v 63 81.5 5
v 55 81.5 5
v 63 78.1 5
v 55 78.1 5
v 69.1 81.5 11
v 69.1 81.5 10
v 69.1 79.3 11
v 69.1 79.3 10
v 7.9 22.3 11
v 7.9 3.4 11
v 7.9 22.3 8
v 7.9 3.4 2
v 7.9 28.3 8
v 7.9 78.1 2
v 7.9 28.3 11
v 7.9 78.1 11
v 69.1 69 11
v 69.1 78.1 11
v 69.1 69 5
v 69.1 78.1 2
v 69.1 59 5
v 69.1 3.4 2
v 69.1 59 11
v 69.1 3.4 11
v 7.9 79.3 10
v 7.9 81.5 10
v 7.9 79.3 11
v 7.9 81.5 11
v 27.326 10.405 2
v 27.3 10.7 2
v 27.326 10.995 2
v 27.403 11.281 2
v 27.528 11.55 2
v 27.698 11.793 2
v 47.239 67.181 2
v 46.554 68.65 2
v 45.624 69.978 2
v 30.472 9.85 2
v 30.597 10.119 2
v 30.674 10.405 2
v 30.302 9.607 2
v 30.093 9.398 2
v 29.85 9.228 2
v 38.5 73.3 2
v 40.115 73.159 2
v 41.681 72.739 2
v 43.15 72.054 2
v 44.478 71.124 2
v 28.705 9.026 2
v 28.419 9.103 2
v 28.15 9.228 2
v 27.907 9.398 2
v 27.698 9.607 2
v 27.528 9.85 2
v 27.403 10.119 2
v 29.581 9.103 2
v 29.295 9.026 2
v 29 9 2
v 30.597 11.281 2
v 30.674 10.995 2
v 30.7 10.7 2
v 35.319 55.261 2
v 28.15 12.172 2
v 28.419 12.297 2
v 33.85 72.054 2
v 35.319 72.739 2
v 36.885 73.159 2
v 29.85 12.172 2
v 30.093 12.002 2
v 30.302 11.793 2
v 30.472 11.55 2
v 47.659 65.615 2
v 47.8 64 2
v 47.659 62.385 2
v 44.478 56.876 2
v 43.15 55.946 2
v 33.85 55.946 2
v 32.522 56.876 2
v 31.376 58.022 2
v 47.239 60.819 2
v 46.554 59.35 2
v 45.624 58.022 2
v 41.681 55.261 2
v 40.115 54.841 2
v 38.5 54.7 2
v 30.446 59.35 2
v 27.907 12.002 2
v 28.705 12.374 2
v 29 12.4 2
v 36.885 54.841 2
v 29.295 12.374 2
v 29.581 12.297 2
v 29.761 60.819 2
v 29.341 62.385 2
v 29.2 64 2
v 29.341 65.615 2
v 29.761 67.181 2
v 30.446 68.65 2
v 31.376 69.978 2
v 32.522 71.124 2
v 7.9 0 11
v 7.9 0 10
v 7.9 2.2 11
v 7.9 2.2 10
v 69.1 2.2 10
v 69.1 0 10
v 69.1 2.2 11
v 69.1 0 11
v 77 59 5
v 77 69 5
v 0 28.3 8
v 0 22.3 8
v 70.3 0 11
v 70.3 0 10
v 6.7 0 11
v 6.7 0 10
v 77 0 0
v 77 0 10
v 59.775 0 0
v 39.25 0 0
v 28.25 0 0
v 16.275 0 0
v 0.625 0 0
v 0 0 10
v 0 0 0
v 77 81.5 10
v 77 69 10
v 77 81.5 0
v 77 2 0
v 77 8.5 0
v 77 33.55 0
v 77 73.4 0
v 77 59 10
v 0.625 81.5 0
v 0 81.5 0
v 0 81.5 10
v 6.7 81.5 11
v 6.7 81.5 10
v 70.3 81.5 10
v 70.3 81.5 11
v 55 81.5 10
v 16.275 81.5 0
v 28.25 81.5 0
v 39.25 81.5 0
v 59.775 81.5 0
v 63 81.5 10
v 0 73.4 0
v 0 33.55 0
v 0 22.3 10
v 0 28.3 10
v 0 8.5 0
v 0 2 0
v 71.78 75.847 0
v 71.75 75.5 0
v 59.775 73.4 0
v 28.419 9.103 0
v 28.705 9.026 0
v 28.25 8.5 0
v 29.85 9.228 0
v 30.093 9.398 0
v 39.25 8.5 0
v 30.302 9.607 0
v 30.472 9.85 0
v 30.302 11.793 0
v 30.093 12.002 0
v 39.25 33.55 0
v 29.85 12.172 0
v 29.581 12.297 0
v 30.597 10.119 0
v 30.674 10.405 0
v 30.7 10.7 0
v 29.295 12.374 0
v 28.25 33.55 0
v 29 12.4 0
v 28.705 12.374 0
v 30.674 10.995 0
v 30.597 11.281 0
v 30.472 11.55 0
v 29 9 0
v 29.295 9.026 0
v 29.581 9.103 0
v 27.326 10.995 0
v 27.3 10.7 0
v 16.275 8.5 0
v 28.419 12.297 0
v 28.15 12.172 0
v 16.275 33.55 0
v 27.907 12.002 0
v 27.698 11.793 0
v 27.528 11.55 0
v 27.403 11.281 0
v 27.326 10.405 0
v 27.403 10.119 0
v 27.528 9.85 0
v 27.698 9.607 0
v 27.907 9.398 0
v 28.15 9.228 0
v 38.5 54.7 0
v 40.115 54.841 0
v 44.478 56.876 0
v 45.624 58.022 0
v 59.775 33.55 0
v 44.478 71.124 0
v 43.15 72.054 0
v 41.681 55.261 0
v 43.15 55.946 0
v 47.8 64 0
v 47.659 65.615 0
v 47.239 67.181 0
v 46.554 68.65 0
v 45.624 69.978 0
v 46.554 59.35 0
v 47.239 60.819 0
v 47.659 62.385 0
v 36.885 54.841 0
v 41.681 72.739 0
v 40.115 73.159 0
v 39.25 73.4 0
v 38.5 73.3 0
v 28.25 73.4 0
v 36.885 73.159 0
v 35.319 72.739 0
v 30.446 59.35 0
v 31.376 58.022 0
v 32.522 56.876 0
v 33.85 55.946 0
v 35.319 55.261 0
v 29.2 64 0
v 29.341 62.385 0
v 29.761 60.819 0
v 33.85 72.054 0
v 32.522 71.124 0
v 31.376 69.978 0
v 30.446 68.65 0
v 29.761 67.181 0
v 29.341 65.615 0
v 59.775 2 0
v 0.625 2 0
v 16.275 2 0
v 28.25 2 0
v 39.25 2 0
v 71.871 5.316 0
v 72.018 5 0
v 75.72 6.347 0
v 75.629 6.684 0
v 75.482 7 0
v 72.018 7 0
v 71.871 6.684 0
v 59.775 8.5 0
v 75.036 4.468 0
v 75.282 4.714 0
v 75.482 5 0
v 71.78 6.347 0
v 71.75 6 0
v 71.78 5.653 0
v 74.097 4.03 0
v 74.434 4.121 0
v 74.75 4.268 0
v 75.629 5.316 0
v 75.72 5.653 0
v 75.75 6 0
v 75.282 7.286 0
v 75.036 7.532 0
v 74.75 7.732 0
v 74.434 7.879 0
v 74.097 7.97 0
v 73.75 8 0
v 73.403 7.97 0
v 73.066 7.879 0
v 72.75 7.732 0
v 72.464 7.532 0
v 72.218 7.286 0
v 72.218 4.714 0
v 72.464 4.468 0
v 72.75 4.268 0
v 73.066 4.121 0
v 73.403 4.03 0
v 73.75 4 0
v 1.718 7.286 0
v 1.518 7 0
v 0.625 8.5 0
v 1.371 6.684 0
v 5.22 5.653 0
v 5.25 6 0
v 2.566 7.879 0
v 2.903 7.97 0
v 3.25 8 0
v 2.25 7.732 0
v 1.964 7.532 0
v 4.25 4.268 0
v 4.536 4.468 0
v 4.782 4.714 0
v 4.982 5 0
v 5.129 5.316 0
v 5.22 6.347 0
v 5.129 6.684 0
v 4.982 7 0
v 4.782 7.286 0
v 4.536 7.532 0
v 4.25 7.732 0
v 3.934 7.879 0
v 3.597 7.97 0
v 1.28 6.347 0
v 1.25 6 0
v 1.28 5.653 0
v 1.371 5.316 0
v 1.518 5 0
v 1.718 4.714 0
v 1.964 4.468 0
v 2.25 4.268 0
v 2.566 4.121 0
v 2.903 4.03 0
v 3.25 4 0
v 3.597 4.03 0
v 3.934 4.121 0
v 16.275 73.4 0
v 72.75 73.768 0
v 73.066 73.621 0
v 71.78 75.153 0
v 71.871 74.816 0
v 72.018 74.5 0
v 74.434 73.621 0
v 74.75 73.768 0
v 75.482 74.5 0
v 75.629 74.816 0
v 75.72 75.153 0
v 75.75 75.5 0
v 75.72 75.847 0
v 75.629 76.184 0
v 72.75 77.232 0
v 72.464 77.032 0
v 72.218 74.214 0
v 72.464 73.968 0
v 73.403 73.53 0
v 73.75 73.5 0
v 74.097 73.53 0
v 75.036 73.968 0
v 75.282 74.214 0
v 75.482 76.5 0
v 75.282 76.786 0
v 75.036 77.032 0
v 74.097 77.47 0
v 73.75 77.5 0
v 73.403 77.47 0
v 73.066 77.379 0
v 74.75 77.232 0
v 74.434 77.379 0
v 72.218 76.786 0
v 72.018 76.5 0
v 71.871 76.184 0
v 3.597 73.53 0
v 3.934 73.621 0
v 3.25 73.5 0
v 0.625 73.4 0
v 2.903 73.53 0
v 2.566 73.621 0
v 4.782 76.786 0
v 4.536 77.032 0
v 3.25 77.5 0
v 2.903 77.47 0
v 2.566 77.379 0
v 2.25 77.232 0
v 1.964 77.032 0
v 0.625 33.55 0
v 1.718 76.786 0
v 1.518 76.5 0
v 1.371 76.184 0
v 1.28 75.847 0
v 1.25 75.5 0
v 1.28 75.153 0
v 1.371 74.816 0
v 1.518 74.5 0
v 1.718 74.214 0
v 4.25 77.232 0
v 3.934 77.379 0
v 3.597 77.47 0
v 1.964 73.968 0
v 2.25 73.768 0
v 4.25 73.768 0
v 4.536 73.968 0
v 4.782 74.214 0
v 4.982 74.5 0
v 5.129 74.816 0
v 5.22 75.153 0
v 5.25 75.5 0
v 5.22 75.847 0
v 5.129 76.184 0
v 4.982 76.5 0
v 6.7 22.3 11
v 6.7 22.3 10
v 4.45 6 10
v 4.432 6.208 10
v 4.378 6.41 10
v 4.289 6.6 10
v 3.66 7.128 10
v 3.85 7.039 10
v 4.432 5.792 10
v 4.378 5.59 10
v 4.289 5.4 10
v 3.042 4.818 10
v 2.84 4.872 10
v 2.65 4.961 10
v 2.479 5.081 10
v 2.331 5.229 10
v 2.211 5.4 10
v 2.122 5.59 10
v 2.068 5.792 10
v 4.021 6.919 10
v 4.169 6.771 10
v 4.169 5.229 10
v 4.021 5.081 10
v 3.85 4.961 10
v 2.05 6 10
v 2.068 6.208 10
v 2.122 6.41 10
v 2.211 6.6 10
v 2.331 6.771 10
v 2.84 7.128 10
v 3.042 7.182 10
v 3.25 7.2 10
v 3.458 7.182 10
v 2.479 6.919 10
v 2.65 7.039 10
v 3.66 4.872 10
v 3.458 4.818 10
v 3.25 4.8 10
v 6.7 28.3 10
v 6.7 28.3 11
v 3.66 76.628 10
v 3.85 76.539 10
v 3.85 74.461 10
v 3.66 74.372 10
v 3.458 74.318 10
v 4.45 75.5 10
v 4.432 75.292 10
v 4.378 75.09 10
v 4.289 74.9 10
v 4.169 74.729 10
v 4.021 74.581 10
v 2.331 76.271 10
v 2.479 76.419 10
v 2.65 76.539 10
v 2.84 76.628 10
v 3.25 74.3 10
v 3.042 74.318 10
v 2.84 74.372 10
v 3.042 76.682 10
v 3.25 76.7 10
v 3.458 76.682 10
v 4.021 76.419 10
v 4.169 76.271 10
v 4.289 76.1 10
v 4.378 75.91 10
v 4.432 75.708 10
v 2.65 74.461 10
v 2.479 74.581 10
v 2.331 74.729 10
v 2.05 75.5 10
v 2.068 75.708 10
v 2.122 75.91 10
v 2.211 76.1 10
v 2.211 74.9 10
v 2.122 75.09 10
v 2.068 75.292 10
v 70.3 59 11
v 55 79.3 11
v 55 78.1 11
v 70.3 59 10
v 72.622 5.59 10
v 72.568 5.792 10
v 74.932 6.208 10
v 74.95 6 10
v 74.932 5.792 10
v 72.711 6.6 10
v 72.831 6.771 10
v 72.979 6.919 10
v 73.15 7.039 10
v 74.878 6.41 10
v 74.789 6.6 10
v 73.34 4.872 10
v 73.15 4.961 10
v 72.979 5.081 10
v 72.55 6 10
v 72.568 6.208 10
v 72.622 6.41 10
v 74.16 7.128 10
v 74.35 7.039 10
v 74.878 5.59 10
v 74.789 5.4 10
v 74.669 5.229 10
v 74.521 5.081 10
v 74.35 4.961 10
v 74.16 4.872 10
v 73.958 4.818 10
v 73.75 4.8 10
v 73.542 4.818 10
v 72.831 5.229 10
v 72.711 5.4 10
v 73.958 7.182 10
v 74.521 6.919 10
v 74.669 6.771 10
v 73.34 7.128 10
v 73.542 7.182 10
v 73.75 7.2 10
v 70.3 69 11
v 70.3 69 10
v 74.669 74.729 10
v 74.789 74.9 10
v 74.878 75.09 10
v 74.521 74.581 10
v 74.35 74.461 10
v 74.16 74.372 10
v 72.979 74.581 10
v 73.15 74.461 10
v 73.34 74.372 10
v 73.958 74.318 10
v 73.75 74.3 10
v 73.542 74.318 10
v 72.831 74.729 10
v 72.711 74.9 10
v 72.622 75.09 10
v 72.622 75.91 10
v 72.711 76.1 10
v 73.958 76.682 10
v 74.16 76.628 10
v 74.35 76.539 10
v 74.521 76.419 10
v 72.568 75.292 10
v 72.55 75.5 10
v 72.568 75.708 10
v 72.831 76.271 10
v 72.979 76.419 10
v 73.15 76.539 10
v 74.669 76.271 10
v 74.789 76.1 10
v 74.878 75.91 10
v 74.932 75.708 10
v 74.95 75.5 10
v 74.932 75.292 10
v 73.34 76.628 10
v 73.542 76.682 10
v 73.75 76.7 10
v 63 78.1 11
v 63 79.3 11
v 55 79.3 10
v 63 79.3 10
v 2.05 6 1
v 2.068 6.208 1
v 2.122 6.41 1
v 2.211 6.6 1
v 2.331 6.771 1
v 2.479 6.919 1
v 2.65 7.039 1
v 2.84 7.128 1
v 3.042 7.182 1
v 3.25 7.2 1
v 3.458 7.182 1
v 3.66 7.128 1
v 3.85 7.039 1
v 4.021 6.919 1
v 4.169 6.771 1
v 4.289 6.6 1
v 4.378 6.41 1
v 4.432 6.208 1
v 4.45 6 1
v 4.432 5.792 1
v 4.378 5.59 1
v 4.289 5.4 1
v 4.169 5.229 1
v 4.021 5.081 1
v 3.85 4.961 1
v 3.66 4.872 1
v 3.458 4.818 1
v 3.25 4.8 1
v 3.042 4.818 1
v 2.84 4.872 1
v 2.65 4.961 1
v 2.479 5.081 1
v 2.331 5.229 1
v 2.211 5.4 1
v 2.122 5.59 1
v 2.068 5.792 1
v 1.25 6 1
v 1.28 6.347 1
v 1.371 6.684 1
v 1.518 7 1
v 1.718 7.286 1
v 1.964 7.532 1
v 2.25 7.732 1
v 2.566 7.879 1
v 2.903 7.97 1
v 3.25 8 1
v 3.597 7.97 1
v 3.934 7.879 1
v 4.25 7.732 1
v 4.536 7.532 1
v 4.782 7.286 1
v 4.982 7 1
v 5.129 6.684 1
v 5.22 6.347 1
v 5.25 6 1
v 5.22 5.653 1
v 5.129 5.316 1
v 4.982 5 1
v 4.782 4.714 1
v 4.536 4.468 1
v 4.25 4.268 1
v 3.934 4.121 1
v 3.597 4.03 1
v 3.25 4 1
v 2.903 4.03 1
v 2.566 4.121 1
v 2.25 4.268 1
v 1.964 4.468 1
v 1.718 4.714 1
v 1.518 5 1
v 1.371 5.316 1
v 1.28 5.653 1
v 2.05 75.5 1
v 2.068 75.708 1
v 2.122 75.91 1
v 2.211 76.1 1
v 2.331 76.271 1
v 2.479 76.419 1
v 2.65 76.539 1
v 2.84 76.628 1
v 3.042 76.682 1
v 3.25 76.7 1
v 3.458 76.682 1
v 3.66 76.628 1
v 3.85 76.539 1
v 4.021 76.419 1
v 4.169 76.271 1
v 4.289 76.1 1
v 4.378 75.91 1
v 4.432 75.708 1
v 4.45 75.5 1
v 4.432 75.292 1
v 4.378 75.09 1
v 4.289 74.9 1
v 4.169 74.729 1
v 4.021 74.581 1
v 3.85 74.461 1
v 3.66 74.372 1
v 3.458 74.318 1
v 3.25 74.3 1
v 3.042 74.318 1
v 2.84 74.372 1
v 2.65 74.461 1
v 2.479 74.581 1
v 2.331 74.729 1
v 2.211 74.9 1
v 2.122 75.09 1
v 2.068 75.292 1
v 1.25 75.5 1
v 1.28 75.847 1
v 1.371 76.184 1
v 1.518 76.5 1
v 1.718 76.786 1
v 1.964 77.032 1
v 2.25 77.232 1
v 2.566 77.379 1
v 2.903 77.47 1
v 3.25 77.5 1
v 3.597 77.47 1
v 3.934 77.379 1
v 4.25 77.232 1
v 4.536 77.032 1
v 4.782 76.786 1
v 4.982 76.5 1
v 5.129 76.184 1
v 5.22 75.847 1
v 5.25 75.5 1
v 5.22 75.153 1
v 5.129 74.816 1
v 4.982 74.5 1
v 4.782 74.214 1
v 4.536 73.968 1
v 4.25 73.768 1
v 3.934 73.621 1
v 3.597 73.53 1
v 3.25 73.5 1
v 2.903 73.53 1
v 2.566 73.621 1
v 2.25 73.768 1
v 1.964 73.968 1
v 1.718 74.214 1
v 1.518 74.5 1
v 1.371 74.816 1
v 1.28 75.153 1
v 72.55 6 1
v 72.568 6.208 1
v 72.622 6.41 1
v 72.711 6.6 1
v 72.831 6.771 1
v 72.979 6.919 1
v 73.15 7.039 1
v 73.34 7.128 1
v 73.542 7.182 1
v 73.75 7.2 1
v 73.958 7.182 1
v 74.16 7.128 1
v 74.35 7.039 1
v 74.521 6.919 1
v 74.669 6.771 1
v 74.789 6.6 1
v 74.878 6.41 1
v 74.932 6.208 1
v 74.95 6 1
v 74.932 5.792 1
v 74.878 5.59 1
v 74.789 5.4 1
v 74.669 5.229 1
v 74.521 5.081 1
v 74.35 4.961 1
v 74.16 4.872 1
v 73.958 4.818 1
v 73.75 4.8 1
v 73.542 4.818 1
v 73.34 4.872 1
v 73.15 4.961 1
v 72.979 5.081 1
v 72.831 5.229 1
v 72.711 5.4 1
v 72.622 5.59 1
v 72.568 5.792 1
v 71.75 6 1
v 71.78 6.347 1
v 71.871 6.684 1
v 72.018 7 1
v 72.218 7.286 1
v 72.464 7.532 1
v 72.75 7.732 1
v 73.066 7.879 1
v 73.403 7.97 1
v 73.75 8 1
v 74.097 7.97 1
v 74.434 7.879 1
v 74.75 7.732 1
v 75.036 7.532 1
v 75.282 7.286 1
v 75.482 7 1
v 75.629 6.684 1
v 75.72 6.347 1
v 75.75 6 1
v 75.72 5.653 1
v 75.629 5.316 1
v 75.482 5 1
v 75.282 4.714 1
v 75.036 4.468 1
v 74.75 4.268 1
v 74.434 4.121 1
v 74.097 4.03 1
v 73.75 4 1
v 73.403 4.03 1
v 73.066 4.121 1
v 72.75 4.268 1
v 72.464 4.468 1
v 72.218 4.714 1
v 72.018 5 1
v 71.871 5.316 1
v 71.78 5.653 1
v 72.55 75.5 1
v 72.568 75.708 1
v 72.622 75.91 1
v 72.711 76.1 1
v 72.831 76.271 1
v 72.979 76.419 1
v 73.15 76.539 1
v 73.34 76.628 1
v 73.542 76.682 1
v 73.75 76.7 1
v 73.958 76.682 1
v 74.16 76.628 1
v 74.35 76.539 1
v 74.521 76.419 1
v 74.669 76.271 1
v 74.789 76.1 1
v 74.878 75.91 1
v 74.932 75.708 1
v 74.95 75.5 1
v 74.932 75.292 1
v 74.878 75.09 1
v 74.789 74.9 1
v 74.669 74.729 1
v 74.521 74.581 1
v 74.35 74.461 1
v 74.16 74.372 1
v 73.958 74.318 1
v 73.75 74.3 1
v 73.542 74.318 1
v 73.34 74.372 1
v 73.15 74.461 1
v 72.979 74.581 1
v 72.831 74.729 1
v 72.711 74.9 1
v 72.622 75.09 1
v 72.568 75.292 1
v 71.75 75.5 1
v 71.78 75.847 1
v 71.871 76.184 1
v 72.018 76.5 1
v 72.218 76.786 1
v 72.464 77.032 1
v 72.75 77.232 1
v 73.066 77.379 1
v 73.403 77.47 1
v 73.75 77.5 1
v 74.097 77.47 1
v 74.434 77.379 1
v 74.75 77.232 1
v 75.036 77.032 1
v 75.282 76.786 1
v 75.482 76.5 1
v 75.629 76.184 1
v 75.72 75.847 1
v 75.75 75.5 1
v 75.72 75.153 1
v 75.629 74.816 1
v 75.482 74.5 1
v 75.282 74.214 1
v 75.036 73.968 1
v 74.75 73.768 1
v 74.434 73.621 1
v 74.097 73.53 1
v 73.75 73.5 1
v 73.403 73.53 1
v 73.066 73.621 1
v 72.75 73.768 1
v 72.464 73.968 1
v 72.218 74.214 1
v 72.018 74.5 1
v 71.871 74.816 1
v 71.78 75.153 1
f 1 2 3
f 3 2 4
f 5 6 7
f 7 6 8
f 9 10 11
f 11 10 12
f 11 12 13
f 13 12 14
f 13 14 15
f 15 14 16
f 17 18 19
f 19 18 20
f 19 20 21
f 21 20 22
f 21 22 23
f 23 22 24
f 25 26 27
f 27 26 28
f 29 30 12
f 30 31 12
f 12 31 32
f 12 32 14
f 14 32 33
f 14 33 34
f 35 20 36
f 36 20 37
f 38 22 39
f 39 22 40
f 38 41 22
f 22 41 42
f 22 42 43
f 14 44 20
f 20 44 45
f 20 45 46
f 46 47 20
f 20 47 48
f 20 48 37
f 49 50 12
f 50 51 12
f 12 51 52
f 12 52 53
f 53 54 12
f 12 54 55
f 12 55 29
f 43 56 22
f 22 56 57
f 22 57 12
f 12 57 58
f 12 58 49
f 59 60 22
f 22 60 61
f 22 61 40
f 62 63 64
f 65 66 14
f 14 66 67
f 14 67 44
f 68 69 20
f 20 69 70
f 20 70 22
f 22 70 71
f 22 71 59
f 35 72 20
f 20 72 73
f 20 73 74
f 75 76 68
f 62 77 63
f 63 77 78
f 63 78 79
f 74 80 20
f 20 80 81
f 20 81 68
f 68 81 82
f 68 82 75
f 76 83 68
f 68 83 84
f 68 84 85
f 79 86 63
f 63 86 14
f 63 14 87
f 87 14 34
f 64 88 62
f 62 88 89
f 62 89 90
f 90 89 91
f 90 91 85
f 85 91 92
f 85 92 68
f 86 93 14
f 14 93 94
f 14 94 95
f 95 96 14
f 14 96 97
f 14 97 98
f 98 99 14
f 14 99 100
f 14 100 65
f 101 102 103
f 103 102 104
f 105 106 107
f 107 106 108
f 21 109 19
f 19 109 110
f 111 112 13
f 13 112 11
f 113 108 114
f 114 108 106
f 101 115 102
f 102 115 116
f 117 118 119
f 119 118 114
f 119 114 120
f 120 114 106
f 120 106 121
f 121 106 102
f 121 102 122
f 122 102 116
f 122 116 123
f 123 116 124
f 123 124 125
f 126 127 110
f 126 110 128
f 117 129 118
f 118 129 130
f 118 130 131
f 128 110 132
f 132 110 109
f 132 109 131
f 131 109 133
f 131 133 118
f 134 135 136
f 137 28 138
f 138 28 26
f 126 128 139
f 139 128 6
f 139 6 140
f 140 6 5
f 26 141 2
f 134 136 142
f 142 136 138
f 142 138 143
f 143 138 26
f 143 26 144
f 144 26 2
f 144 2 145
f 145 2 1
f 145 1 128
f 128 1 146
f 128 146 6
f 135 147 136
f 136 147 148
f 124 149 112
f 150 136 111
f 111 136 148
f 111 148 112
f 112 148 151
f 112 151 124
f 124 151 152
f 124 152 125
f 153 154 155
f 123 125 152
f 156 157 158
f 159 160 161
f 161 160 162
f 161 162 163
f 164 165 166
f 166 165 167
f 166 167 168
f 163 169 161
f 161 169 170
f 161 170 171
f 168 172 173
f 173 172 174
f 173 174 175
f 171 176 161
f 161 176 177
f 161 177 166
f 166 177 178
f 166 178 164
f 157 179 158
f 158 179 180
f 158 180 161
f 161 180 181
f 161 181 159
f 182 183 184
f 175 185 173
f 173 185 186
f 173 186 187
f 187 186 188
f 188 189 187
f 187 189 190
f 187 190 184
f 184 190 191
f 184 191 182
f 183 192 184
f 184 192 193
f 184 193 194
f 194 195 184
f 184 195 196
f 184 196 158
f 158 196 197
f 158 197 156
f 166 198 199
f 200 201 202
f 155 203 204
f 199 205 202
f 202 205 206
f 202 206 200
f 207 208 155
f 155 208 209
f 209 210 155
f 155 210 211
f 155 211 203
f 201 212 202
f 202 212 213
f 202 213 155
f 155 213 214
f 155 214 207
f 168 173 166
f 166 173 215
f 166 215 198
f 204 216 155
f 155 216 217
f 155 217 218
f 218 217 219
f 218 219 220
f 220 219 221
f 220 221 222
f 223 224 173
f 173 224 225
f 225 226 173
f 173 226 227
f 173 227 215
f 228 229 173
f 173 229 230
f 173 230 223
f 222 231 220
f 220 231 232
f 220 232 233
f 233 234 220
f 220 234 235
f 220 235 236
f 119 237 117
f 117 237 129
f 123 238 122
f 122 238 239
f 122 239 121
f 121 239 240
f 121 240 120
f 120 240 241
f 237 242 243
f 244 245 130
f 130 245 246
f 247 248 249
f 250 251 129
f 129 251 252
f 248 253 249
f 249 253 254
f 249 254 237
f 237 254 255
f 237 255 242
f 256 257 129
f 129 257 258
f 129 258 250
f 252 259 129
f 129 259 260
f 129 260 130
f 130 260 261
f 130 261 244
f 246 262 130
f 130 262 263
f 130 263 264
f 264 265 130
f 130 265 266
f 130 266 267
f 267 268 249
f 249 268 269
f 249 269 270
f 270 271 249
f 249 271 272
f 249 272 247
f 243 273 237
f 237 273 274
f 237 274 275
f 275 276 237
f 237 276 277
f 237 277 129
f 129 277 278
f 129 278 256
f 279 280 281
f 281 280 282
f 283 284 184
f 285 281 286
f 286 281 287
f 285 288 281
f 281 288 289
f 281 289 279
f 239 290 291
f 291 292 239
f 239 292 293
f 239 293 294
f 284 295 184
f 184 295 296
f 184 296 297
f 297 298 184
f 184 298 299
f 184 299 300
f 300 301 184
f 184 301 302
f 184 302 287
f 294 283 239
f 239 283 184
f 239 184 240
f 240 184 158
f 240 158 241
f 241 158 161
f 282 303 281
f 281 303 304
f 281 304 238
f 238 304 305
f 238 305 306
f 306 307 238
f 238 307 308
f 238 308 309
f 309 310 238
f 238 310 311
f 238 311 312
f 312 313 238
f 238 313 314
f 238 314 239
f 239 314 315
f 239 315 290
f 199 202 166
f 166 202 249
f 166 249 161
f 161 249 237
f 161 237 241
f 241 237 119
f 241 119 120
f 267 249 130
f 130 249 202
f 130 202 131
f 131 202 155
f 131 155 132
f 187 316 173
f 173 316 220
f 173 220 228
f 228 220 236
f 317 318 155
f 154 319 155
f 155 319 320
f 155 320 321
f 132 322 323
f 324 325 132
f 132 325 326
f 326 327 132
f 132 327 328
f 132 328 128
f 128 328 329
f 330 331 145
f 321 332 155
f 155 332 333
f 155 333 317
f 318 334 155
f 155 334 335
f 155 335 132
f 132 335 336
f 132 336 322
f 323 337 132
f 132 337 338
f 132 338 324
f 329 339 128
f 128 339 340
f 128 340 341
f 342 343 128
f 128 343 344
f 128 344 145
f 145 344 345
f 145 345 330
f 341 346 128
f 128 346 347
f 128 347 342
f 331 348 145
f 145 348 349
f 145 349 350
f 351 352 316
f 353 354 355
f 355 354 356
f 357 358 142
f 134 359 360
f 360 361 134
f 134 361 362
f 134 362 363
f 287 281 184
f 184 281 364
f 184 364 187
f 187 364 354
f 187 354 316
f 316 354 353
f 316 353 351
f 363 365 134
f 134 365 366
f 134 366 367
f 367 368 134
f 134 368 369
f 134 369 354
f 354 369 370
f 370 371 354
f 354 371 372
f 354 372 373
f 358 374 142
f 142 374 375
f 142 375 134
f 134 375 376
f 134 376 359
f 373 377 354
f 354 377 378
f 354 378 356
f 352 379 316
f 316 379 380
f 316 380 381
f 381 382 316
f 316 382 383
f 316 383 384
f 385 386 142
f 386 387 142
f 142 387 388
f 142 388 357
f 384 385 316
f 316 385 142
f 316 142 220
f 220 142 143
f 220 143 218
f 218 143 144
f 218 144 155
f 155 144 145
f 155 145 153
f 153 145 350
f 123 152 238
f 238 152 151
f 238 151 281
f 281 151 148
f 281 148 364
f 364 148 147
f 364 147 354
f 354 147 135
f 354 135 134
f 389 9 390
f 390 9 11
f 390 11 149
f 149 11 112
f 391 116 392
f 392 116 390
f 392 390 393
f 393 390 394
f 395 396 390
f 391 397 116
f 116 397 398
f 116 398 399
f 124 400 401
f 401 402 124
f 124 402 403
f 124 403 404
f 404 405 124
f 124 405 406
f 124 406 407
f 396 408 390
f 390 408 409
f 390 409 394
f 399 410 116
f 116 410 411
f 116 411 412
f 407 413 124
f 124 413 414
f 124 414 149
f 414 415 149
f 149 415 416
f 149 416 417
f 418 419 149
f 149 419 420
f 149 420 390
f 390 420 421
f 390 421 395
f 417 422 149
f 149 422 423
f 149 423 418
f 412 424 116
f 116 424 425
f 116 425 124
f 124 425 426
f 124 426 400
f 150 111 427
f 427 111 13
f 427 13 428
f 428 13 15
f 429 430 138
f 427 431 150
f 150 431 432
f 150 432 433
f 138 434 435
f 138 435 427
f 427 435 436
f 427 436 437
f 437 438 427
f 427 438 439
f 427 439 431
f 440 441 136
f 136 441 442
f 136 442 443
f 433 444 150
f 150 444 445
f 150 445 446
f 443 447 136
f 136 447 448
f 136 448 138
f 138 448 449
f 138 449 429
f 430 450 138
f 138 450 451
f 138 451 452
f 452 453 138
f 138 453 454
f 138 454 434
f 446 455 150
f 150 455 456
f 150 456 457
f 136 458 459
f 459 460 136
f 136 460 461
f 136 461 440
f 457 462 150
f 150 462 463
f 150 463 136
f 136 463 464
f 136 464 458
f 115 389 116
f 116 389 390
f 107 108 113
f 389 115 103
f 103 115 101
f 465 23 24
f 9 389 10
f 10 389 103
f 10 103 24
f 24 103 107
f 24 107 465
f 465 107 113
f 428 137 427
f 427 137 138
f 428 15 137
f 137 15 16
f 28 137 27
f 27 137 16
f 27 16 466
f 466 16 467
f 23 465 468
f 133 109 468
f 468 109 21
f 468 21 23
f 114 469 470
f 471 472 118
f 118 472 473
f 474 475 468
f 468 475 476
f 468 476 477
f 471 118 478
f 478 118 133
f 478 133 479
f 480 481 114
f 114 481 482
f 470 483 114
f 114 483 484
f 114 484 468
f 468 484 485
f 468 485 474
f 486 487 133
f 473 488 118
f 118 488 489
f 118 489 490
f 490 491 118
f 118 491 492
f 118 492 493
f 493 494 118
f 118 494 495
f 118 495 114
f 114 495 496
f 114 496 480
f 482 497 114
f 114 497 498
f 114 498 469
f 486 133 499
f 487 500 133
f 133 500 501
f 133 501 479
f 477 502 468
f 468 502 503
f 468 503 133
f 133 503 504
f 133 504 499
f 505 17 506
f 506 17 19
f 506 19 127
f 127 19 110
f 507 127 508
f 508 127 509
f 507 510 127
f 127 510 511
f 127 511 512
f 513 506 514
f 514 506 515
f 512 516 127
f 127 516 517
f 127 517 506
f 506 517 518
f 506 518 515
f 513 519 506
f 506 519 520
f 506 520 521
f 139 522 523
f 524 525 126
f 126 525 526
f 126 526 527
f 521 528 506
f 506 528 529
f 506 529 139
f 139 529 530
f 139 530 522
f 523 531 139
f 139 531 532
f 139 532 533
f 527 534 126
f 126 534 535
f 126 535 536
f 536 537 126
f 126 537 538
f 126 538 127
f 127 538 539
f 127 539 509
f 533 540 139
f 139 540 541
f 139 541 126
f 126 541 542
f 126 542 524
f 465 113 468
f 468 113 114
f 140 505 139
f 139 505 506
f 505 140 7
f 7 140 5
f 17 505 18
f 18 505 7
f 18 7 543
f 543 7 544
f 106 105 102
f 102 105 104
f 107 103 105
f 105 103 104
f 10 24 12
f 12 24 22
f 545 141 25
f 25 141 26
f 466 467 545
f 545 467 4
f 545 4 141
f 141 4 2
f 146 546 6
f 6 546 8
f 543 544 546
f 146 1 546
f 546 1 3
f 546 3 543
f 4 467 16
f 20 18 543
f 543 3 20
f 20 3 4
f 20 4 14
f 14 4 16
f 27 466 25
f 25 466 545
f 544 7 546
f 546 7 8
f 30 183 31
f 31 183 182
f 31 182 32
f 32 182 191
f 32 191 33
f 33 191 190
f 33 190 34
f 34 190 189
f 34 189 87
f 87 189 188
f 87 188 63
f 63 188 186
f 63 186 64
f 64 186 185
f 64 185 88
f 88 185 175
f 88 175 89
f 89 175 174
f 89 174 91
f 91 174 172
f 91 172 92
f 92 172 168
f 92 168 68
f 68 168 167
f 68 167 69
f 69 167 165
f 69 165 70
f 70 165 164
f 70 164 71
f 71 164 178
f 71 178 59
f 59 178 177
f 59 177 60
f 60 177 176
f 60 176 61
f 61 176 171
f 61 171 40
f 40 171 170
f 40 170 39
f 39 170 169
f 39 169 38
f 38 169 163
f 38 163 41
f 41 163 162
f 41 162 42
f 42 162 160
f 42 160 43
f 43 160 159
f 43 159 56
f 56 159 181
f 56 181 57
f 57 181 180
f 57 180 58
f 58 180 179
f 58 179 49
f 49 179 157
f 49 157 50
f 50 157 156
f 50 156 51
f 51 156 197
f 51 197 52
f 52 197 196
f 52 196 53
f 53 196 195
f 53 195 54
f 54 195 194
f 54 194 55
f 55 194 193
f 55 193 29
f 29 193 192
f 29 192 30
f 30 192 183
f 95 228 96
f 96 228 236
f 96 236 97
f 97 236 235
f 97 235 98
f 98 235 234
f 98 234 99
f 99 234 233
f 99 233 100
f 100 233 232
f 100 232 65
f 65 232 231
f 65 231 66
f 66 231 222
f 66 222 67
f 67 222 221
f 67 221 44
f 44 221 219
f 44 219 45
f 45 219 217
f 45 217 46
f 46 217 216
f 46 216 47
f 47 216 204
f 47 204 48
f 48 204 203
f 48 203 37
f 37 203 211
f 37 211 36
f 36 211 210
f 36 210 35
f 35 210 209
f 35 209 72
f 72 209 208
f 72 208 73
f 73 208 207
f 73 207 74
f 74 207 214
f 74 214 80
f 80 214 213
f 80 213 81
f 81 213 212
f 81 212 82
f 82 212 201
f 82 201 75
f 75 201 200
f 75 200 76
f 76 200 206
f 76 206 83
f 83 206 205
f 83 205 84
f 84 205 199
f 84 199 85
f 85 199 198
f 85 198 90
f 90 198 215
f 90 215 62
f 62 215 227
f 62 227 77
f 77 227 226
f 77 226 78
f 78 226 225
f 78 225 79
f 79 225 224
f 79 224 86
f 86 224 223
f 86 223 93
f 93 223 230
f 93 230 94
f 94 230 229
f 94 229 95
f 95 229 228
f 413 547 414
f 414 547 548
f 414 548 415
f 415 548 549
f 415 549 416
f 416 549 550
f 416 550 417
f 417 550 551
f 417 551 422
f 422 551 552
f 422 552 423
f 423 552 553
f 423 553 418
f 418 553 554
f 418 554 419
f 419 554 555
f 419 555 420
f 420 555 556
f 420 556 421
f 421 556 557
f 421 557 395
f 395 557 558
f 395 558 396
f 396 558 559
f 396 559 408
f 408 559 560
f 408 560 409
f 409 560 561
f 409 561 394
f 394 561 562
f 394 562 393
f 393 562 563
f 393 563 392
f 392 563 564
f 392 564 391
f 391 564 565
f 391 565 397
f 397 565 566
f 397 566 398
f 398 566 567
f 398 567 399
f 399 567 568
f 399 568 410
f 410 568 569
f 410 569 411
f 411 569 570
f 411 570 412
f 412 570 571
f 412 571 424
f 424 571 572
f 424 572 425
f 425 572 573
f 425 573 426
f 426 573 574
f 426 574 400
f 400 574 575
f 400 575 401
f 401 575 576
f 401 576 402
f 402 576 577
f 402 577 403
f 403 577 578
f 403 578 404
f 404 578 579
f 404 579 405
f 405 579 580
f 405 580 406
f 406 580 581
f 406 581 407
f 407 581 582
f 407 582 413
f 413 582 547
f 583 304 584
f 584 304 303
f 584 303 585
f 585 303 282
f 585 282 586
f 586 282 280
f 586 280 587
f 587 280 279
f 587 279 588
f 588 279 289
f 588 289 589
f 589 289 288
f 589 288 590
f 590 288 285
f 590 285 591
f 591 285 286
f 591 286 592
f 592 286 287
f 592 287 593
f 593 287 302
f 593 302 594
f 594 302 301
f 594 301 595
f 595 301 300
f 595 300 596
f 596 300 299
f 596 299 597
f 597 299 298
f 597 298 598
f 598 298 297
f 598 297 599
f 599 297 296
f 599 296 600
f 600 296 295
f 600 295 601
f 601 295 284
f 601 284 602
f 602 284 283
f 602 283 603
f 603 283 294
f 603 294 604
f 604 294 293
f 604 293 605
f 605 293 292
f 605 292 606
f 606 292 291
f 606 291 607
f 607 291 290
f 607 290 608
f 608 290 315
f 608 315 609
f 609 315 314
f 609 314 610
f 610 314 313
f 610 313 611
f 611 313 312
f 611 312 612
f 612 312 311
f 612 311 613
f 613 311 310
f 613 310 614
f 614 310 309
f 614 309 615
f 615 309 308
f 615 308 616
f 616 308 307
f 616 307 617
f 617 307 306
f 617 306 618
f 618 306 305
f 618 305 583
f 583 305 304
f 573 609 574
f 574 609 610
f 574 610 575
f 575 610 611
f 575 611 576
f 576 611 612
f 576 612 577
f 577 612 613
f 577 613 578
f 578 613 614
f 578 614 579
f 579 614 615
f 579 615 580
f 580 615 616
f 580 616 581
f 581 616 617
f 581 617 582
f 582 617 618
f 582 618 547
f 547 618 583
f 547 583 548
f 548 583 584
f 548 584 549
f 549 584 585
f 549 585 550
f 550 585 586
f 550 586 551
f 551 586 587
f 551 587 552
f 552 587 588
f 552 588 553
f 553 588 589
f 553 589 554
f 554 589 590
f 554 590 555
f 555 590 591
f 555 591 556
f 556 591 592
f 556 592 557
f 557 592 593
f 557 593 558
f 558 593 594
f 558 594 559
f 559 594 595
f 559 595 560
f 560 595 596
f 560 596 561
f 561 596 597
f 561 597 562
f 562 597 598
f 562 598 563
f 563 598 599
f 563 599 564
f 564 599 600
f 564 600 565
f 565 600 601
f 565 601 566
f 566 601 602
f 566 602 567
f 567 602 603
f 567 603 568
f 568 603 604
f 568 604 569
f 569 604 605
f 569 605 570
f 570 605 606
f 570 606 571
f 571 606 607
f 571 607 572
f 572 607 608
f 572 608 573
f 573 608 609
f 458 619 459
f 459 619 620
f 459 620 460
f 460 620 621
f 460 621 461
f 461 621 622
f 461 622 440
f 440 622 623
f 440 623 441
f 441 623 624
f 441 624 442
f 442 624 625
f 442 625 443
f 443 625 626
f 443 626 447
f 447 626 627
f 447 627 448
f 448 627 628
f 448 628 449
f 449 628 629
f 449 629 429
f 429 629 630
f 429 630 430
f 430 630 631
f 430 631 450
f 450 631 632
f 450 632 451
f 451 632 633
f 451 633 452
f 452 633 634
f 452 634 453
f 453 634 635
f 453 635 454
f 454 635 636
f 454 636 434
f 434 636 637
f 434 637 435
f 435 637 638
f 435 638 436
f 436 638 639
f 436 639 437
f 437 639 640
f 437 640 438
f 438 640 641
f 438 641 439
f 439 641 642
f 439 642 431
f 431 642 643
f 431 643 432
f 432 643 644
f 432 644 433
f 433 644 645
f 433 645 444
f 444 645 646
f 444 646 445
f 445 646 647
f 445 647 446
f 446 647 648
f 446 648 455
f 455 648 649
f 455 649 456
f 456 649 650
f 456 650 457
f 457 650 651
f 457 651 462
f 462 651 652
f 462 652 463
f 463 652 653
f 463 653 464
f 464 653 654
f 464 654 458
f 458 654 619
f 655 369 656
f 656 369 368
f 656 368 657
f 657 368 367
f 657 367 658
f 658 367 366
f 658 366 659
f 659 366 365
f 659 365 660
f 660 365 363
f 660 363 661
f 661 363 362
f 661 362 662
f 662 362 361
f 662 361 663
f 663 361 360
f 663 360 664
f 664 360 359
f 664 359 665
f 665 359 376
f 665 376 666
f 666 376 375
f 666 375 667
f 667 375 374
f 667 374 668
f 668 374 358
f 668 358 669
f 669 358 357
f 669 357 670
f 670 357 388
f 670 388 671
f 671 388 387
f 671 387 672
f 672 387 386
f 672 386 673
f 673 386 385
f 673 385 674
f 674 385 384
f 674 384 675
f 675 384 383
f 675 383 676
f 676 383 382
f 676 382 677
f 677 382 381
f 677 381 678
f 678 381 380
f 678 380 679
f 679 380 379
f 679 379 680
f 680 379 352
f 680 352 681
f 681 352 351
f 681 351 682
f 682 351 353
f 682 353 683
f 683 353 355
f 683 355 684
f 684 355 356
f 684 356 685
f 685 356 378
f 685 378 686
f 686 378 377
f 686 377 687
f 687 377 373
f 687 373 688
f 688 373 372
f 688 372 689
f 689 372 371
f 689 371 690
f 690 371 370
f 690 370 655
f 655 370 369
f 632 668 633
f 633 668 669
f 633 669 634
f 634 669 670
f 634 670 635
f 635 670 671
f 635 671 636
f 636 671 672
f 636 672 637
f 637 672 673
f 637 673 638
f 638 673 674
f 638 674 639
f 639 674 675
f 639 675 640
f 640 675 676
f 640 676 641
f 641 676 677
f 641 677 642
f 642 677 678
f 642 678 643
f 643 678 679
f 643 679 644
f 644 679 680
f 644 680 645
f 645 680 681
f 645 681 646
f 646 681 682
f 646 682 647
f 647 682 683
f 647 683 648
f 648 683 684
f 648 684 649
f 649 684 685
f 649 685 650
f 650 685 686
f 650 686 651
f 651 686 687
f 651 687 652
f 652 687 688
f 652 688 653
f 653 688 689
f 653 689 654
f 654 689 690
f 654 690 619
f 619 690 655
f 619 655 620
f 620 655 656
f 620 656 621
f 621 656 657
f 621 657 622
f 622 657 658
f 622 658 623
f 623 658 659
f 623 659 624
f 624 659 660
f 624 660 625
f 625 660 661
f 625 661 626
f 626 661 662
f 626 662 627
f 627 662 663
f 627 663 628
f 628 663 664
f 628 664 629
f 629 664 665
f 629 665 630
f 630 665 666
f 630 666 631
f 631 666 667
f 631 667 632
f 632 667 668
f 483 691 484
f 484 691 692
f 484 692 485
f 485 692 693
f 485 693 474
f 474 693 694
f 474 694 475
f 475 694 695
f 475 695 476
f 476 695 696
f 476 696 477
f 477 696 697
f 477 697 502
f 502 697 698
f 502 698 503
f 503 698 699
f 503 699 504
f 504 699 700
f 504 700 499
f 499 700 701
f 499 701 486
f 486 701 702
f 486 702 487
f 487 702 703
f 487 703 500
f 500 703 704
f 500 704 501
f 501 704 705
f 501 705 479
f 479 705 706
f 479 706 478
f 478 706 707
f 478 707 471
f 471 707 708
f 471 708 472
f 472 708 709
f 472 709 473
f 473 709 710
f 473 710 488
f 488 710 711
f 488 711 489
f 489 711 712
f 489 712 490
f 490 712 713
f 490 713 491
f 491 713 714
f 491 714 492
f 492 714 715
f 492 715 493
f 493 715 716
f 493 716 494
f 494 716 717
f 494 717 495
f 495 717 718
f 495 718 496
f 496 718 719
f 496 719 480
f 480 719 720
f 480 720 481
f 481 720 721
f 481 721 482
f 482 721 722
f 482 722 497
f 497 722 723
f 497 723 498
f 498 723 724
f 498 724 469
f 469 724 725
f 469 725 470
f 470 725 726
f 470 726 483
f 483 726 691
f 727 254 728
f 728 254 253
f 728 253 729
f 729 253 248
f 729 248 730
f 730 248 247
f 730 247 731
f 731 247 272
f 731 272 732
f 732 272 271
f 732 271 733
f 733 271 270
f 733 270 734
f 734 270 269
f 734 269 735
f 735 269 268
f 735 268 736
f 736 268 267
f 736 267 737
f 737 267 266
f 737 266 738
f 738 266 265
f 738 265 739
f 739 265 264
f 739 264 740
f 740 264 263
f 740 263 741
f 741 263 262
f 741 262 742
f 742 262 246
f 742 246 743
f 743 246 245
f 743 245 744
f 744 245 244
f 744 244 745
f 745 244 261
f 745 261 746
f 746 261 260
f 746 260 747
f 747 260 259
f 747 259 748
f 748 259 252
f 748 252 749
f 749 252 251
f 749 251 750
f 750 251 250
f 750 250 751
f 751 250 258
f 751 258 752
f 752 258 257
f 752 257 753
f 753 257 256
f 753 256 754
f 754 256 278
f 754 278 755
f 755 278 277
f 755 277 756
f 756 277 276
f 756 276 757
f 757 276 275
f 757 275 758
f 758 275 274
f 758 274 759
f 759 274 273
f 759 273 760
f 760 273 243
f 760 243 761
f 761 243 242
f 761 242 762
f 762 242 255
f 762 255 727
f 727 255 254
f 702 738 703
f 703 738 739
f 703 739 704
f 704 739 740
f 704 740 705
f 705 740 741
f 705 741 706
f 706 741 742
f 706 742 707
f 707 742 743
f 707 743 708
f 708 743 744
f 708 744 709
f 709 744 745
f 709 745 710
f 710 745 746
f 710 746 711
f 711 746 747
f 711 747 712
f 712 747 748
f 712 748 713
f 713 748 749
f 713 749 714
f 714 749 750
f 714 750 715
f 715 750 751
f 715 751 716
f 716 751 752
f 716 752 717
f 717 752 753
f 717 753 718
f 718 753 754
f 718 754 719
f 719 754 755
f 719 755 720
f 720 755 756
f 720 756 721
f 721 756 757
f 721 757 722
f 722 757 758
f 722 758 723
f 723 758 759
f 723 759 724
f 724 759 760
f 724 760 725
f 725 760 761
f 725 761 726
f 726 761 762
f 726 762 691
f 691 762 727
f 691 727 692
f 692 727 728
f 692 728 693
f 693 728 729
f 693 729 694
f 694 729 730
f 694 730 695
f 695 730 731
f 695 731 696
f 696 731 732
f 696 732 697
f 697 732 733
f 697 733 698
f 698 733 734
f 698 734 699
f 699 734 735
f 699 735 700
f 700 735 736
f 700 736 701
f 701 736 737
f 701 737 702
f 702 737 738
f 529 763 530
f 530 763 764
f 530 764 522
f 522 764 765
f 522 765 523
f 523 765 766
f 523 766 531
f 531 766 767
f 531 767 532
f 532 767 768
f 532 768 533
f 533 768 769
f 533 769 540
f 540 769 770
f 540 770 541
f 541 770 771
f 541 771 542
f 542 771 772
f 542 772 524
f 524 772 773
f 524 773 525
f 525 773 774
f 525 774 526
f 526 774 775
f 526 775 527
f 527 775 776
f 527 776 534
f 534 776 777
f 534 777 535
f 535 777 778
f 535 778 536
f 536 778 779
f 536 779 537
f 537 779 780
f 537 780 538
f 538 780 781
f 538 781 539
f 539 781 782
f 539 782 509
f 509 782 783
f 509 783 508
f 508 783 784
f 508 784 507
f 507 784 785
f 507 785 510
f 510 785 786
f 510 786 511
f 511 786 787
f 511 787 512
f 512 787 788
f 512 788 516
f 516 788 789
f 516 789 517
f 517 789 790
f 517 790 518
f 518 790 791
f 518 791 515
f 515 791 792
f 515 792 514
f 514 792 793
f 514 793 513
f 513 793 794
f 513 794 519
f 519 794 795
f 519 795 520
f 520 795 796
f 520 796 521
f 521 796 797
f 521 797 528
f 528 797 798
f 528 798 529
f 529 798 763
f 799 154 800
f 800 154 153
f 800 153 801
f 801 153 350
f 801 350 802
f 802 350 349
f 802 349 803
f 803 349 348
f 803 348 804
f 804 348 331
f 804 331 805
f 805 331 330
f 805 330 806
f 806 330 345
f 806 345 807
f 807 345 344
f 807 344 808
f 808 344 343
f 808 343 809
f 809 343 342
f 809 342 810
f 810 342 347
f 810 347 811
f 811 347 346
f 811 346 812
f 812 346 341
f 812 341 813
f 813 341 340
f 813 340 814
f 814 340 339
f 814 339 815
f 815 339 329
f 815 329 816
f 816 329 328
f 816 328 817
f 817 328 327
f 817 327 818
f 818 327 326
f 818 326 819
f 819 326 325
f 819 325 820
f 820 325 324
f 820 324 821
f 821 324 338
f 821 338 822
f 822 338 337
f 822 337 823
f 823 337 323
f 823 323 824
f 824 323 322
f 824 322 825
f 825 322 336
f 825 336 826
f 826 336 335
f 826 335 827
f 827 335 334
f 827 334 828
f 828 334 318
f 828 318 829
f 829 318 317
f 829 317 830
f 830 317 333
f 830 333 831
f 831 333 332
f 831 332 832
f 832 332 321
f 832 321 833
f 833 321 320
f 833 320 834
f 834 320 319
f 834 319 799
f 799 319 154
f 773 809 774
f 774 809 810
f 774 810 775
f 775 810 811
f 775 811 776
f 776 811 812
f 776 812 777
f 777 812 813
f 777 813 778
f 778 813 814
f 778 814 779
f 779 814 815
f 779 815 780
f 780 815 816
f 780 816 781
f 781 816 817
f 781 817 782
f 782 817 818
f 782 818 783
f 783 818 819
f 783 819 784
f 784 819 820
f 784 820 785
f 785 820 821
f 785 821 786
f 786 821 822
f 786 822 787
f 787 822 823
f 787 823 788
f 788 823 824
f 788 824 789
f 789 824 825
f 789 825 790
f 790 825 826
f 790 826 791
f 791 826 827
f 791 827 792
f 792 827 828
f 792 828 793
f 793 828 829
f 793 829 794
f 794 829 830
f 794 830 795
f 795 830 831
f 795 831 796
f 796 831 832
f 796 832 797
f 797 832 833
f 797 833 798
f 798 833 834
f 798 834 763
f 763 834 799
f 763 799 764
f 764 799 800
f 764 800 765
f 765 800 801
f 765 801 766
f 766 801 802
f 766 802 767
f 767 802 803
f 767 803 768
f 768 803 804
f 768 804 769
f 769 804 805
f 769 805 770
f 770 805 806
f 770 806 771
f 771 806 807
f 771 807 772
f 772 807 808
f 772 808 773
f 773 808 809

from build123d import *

# Parameters (mm, degrees)
SKETCH1_W            = 81.5
SKETCH1_H            = 77
BOSS_EXTRUDE1_DEPTH  = 2
SKETCH2_W            = 81.5
SKETCH2_H            = 6.7
BOSS_EXTRUDE2_DEPTH  = 8
SKETCH3_W            = 22.3
SKETCH3_H            = 6.7
BOSS_EXTRUDE3_DEPTH  = 10
SKETCH4_W            = 53.2
SKETCH4_H            = 6.7
BOSS_EXTRUDE4_DEPTH  = 10
SKETCH5_W            = 81.5
SKETCH5_H            = 1.2
BOSS_EXTRUDE5_DEPTH  = 8
SKETCH6_W            = 22.3
SKETCH6_H            = 1.2
BOSS_EXTRUDE6_DEPTH  = 11
SKETCH7_W            = 53.2
SKETCH7_H            = 1.2
BOSS_EXTRUDE7_DEPTH  = 11
SKETCH8_W            = 81.5
SKETCH8_H            = 6.7
BOSS_EXTRUDE8_DEPTH  = 5
SKETCH9_W            = 59
SKETCH9_H            = 6.7
BOSS_EXTRUDE9_DEPTH  = 10
SKETCH10_W           = 12.5
SKETCH10_H           = 6.7
BOSS_EXTRUDE10_DEPTH = 10
SKETCH11_W           = 81.5
SKETCH11_H           = 1.2
BOSS_EXTRUDE11_DEPTH = 5
SKETCH12_W           = 59
SKETCH12_H           = 1.2
BOSS_EXTRUDE12_DEPTH = 11
SKETCH13_W           = 12.5
SKETCH13_H           = 1.2
BOSS_EXTRUDE13_DEPTH = 11
SKETCH14_W           = 2.2
SKETCH14_H           = 63.6
BOSS_EXTRUDE14_DEPTH = 10
SKETCH15_W           = 1.2
SKETCH15_H           = 61.2
BOSS_EXTRUDE15_DEPTH = 11
SKETCH16_W           = 2.2
SKETCH16_H           = 63.6
BOSS_EXTRUDE16_DEPTH = 5
SKETCH17_W           = 2.2
SKETCH17_H           = 48.3
BOSS_EXTRUDE17_DEPTH = 10
SKETCH18_W           = 2.2
SKETCH18_H           = 7.3
BOSS_EXTRUDE18_DEPTH = 10
SKETCH19_W           = 1.2
SKETCH19_H           = 61.2
BOSS_EXTRUDE19_DEPTH = 5
SKETCH20_W           = 1.2
SKETCH20_H           = 47.1
BOSS_EXTRUDE20_DEPTH = 11
SKETCH21_W           = 1.2
SKETCH21_H           = 6.1
BOSS_EXTRUDE21_DEPTH = 11
SKETCH22_R           = 1.7
CUT_EXTRUDE1_DEPTH   = 17
SKETCH23_R           = 9.3
CUT_EXTRUDE2_DEPTH   = 17
SKETCH24_R           = 1.2
CUT_EXTRUDE3_DEPTH   = 17
SKETCH25_R           = 2
CUT_EXTRUDE4_DEPTH   = 1
SKETCH26_R           = 1.2
CUT_EXTRUDE5_DEPTH   = 17
SKETCH27_R           = 2
CUT_EXTRUDE6_DEPTH   = 1
SKETCH28_R           = 1.2
CUT_EXTRUDE7_DEPTH   = 17
SKETCH29_R           = 2
CUT_EXTRUDE8_DEPTH   = 1
SKETCH30_R           = 1.2
CUT_EXTRUDE9_DEPTH   = 17
SKETCH31_R           = 2
CUT_EXTRUDE10_DEPTH  = 1


with BuildPart() as part:
    # Sketch1 → Boss-Extrude1 (new body)
    with BuildSketch(Plane(origin=(0, 0, 0), x_dir=(0, 1, 0), z_dir=(0, 0, 1))):
        with Locations((40.75, -38.5)):
            Rectangle(SKETCH1_W, SKETCH1_H)
    extrude(amount=BOSS_EXTRUDE1_DEPTH)

    # Sketch2 → Boss-Extrude2 (add)
    with BuildSketch(Plane(origin=(0, 0, 0), x_dir=(0, 1, 0), z_dir=(0, 0, 1))):
        with Locations((40.75, -3.35)):
            Rectangle(SKETCH2_W, SKETCH2_H)
    extrude(amount=BOSS_EXTRUDE2_DEPTH)

    # Sketch3 → Boss-Extrude3 (add)
    with BuildSketch(Plane(origin=(0, 0, 0), x_dir=(0, 1, 0), z_dir=(0, 0, 1))):
        with Locations((11.15, -3.35)):
            Rectangle(SKETCH3_W, SKETCH3_H)
    extrude(amount=BOSS_EXTRUDE3_DEPTH)

    # Sketch4 → Boss-Extrude4 (add)
    with BuildSketch(Plane(origin=(0, 0, 0), x_dir=(0, 1, 0), z_dir=(0, 0, 1))):
        with Locations((54.9, -3.35)):
            Rectangle(SKETCH4_W, SKETCH4_H)
    extrude(amount=BOSS_EXTRUDE4_DEPTH)

    # Sketch5 → Boss-Extrude5 (add)
    with BuildSketch(Plane(origin=(0, 0, 0), x_dir=(0, 1, 0), z_dir=(0, 0, 1))):
        with Locations((40.75, -7.3)):
            Rectangle(SKETCH5_W, SKETCH5_H)
    extrude(amount=BOSS_EXTRUDE5_DEPTH)

    # Sketch6 → Boss-Extrude6 (add)
    with BuildSketch(Plane(origin=(0, 0, 0), x_dir=(0, 1, 0), z_dir=(0, 0, 1))):
        with Locations((11.15, -7.3)):
            Rectangle(SKETCH6_W, SKETCH6_H)
    extrude(amount=BOSS_EXTRUDE6_DEPTH)

    # Sketch7 → Boss-Extrude7 (add)
    with BuildSketch(Plane(origin=(0, 0, 0), x_dir=(0, 1, 0), z_dir=(0, 0, 1))):
        with Locations((54.9, -7.3)):
            Rectangle(SKETCH7_W, SKETCH7_H)
    extrude(amount=BOSS_EXTRUDE7_DEPTH)

    # Sketch8 → Boss-Extrude8 (add)
    with BuildSketch(Plane(origin=(0, 0, 0), x_dir=(0, 1, 0), z_dir=(0, 0, 1))):
        with Locations((40.75, -73.65)):
            Rectangle(SKETCH8_W, SKETCH8_H)
    extrude(amount=BOSS_EXTRUDE8_DEPTH)

    # Sketch9 → Boss-Extrude9 (add)
    with BuildSketch(Plane(origin=(0, 0, 0), x_dir=(0, 1, 0), z_dir=(0, 0, 1))):
        with Locations((29.5, -73.65)):
            Rectangle(SKETCH9_W, SKETCH9_H)
    extrude(amount=BOSS_EXTRUDE9_DEPTH)

    # Sketch10 → Boss-Extrude10 (add)
    with BuildSketch(Plane(origin=(0, 0, 0), x_dir=(0, 1, 0), z_dir=(0, 0, 1))):
        with Locations((75.25, -73.65)):
            Rectangle(SKETCH10_W, SKETCH10_H)
    extrude(amount=BOSS_EXTRUDE10_DEPTH)

    # Sketch11 → Boss-Extrude11 (add)
    with BuildSketch(Plane(origin=(0, 0, 0), x_dir=(0, 1, 0), z_dir=(0, 0, 1))):
        with Locations((40.75, -69.7)):
            Rectangle(SKETCH11_W, SKETCH11_H)
    extrude(amount=BOSS_EXTRUDE11_DEPTH)

    # Sketch12 → Boss-Extrude12 (add)
    with BuildSketch(Plane(origin=(0, 0, 0), x_dir=(0, 1, 0), z_dir=(0, 0, 1))):
        with Locations((29.5, -69.7)):
            Rectangle(SKETCH12_W, SKETCH12_H)
    extrude(amount=BOSS_EXTRUDE12_DEPTH)

    # Sketch13 → Boss-Extrude13 (add)
    with BuildSketch(Plane(origin=(0, 0, 0), x_dir=(0, 1, 0), z_dir=(0, 0, 1))):
        with Locations((75.25, -69.7)):
            Rectangle(SKETCH13_W, SKETCH13_H)
    extrude(amount=BOSS_EXTRUDE13_DEPTH)

    # Sketch14 → Boss-Extrude14 (add)
    with BuildSketch(Plane(origin=(0, 0, 0), x_dir=(0, 1, 0), z_dir=(0, 0, 1))):
        with Locations((1.1, -38.5)):
            Rectangle(SKETCH14_W, SKETCH14_H)
    extrude(amount=BOSS_EXTRUDE14_DEPTH)

    # Sketch15 → Boss-Extrude15 (add)
    with BuildSketch(Plane(origin=(0, 0, 0), x_dir=(0, 1, 0), z_dir=(0, 0, 1))):
        with Locations((2.8, -38.5)):
            Rectangle(SKETCH15_W, SKETCH15_H)
    extrude(amount=BOSS_EXTRUDE15_DEPTH)

    # Sketch16 → Boss-Extrude16 (add)
    with BuildSketch(Plane(origin=(0, 0, 0), x_dir=(0, 1, 0), z_dir=(0, 0, 1))):
        with Locations((80.4, -38.5)):
            Rectangle(SKETCH16_W, SKETCH16_H)
    extrude(amount=BOSS_EXTRUDE16_DEPTH)

    # Sketch17 → Boss-Extrude17 (add)
    with BuildSketch(Plane(origin=(0, 0, 0), x_dir=(0, 1, 0), z_dir=(0, 0, 1))):
        with Locations((80.4, -30.85)):
            Rectangle(SKETCH17_W, SKETCH17_H)
    extrude(amount=BOSS_EXTRUDE17_DEPTH)

    # Sketch18 → Boss-Extrude18 (add)
    with BuildSketch(Plane(origin=(0, 0, 0), x_dir=(0, 1, 0), z_dir=(0, 0, 1))):
        with Locations((80.4, -66.65)):
            Rectangle(SKETCH18_W, SKETCH18_H)
    extrude(amount=BOSS_EXTRUDE18_DEPTH)

    # Sketch19 → Boss-Extrude19 (add)
    with BuildSketch(Plane(origin=(0, 0, 0), x_dir=(0, 1, 0), z_dir=(0, 0, 1))):
        with Locations((78.7, -38.5)):
            Rectangle(SKETCH19_W, SKETCH19_H)
    extrude(amount=BOSS_EXTRUDE19_DEPTH)

    # Sketch20 → Boss-Extrude20 (add)
    with BuildSketch(Plane(origin=(0, 0, 0), x_dir=(0, 1, 0), z_dir=(0, 0, 1))):
        with Locations((78.7, -31.45)):
            Rectangle(SKETCH20_W, SKETCH20_H)
    extrude(amount=BOSS_EXTRUDE20_DEPTH)

    # Sketch21 → Boss-Extrude21 (add)
    with BuildSketch(Plane(origin=(0, 0, 0), x_dir=(0, 1, 0), z_dir=(0, 0, 1))):
        with Locations((78.7, -66.05)):
            Rectangle(SKETCH21_W, SKETCH21_H)
    extrude(amount=BOSS_EXTRUDE21_DEPTH)

    # Sketch22 → Cut-Extrude1 (cut)
    with BuildSketch(Plane(origin=(0, 0, 0), x_dir=(0, 1, 0), z_dir=(0, 0, 1))):
        with Locations(Location((10.7, -29, 0), (0, 0, 270))):
            Circle(SKETCH22_R)
    extrude(amount=CUT_EXTRUDE1_DEPTH, mode=Mode.SUBTRACT)

    # Sketch23 → Cut-Extrude2 (cut)
    with BuildSketch(Plane(origin=(0, 0, 0), x_dir=(0, 1, 0), z_dir=(0, 0, 1))):
        with Locations(Location((64, -38.5, 0), (0, 0, 270))):
            Circle(SKETCH23_R)
    extrude(amount=CUT_EXTRUDE2_DEPTH, mode=Mode.SUBTRACT)

    # Sketch24 → Cut-Extrude3 (cut)
    with BuildSketch(Plane(origin=(0, 0, 0), x_dir=(0, 1, 0), z_dir=(0, 0, 1))):
        with Locations(Location((6, -3.25, 0), (0, 0, 270))):
            Circle(SKETCH24_R)
    extrude(amount=CUT_EXTRUDE3_DEPTH, mode=Mode.SUBTRACT)

    # Sketch25 → Cut-Extrude4 (cut)
    with BuildSketch(Plane(origin=(0, 0, 0), x_dir=(0, 1, 0), z_dir=(0, 0, 1))):
        with Locations(Location((6, -3.25, 0), (0, 0, 270))):
            Circle(SKETCH25_R)
    extrude(amount=CUT_EXTRUDE4_DEPTH, mode=Mode.SUBTRACT)

    # Sketch26 → Cut-Extrude5 (cut)
    with BuildSketch(Plane(origin=(0, 0, 0), x_dir=(0, 1, 0), z_dir=(0, 0, 1))):
        with Locations(Location((75.5, -3.25, 0), (0, 0, 270))):
            Circle(SKETCH26_R)
    extrude(amount=CUT_EXTRUDE5_DEPTH, mode=Mode.SUBTRACT)

    # Sketch27 → Cut-Extrude6 (cut)
    with BuildSketch(Plane(origin=(0, 0, 0), x_dir=(0, 1, 0), z_dir=(0, 0, 1))):
        with Locations(Location((75.5, -3.25, 0), (0, 0, 270))):
            Circle(SKETCH27_R)
    extrude(amount=CUT_EXTRUDE6_DEPTH, mode=Mode.SUBTRACT)

    # Sketch28 → Cut-Extrude7 (cut)
    with BuildSketch(Plane(origin=(0, 0, 0), x_dir=(0, 1, 0), z_dir=(0, 0, 1))):
        with Locations(Location((6, -73.75, 0), (0, 0, 270))):
            Circle(SKETCH28_R)
    extrude(amount=CUT_EXTRUDE7_DEPTH, mode=Mode.SUBTRACT)

    # Sketch29 → Cut-Extrude8 (cut)
    with BuildSketch(Plane(origin=(0, 0, 0), x_dir=(0, 1, 0), z_dir=(0, 0, 1))):
        with Locations(Location((6, -73.75, 0), (0, 0, 270))):
            Circle(SKETCH29_R)
    extrude(amount=CUT_EXTRUDE8_DEPTH, mode=Mode.SUBTRACT)

    # Sketch30 → Cut-Extrude9 (cut)
    with BuildSketch(Plane(origin=(0, 0, 0), x_dir=(0, 1, 0), z_dir=(0, 0, 1))):
        with Locations(Location((75.5, -73.75, 0), (0, 0, 270))):
            Circle(SKETCH30_R)
    extrude(amount=CUT_EXTRUDE9_DEPTH, mode=Mode.SUBTRACT)

    # Sketch31 → Cut-Extrude10 (cut)
    with BuildSketch(Plane(origin=(0, 0, 0), x_dir=(0, 1, 0), z_dir=(0, 0, 1))):
        with Locations(Location((75.5, -73.75, 0), (0, 0, 270))):
            Circle(SKETCH31_R)
    extrude(amount=CUT_EXTRUDE10_DEPTH, mode=Mode.SUBTRACT)


solid = part.part
